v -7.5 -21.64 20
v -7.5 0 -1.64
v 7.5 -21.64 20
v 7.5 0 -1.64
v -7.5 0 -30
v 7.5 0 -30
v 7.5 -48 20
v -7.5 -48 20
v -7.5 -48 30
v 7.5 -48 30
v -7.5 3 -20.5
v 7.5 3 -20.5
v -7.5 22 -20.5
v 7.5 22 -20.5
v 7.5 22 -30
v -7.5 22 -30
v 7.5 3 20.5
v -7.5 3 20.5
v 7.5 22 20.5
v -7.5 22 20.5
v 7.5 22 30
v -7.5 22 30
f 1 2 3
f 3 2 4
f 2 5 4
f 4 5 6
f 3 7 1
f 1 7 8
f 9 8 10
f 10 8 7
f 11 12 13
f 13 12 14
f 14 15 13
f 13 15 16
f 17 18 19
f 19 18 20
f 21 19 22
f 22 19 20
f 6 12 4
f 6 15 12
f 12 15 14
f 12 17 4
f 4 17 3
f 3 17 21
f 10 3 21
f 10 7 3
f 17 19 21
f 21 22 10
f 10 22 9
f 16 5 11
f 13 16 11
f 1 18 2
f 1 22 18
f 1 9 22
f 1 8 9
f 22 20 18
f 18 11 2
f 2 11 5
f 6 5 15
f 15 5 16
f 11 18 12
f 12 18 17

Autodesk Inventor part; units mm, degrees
ref_plane "YZ Plane" through (0, 0, 0) normal (1, 0, 0) x (0, 1, 0)
ref_plane "XZ Plane" through (0, 0, 0) normal (0, 1, 0) x (-1, 0, 0)
ref_plane "XY Plane" through (0, 0, 0) normal (0, 0, 1) x (1, 0, 0)
sketch "Sketch1" plane through (0, 0, 0) normal (0, 1, 0) x (-1, 0, 0)
  line L0 (-7.5, -30) -> (7.5, -30)
  line L1 (7.5, -30) -> (7.5, 30)
  line L2 (7.5, 30) -> (-7.5, 30)
  line L3 (-7.5, 30) -> (-7.5, -30)
  line L4 (-7.5, -30) -> (7.5, 30) construction
  line L5 (7.5, -30) -> (-7.5, 30) construction
  point P0 (0, 0)
  dimension "d0" = 15
  dimension "d1" = 60
extrude "Extrusion1" add sketch "Sketch1" along normal blind 3
sketch "Sketch2" plane through (0, 3, 0) normal (0, 1, 0) x (1, 0, 0)
  line L0 (-7.5, 30) -> (-7.5, -30) projected
  line L1 (7.5, 20.5) -> (-7.5, 20.5)
  line L2 (-7.5, 20.5) -> (-7.5, -20.5)
  line L3 (-7.5, -20.5) -> (7.5, -20.5)
  line L4 (7.5, -20.5) -> (7.5, 20.5)
  line L5 (7.5, 20.5) -> (-7.5, -20.5) construction
  line L6 (-7.5, 20.5) -> (7.5, -20.5) construction
  line L7 (7.5, -20.5) -> (-7.5, -20.5)
  line L8 (-7.5, -20.5) -> (-7.5, -30)
  line L9 (-7.5, -30) -> (7.5, -30)
  line L10 (7.5, -30) -> (7.5, -20.5)
  line L11 (7.5, 30) -> (-7.5, 30) projected
  line L12 (7.5, 20.5) -> (-7.5, 20.5)
  line L13 (-7.5, 20.5) -> (-7.5, 30)
  line L14 (-7.5, 30) -> (7.5, 30)
  line L15 (7.5, 30) -> (7.5, 20.5)
  point P0 (0, 0)
  dimension "d4" = 41
extrude "Extrusion2" add sketch "Sketch2" along normal blind 19 contours L11 L15 L1 L0 | L3 L10 L9 L0
sketch "Sketch3" plane through (-7.5, 0, -30) normal (-1, 0, 0) x (0, 0, 1)
  line L0 (60, 0) -> (0, 0) projected
  line L1 (60, 0) -> (50, 0)
  line L2 (50, 0) -> (50, -48)
  line L3 (50, -48) -> (60, -48)
  line L4 (60, -48) -> (60, 0)
  point P0 (30, 0)
  dimension "d7" = 10
  dimension "d8" = 48
extrude "Extrusion3" add sketch "Sketch3" against normal blind 15
sketch "Sketch5" plane through (-7.5, 0, -30) normal (-1, 0, 0) x (0, 0, 1)
  line L0 (0, 0) -> (50, 0) projected
  line L1 (28.3595, 0) -> (50, -21.6405)
  line L2 (50, -48) -> (50, 0) projected
  line L3 (28.3595, 0) -> (58.9638, 0) construction
  line L4 (50, -21.6405) -> (50, 0)
  line L5 (50, 0) -> (28.3595, 0)
  point P0 (30, 0)
  dimension "d15" = 45
extrude "Extrusion5" add sketch "Sketch5" against normal blind 15
properties part number "ServoSupport" material "PC/ABS Plastic"
